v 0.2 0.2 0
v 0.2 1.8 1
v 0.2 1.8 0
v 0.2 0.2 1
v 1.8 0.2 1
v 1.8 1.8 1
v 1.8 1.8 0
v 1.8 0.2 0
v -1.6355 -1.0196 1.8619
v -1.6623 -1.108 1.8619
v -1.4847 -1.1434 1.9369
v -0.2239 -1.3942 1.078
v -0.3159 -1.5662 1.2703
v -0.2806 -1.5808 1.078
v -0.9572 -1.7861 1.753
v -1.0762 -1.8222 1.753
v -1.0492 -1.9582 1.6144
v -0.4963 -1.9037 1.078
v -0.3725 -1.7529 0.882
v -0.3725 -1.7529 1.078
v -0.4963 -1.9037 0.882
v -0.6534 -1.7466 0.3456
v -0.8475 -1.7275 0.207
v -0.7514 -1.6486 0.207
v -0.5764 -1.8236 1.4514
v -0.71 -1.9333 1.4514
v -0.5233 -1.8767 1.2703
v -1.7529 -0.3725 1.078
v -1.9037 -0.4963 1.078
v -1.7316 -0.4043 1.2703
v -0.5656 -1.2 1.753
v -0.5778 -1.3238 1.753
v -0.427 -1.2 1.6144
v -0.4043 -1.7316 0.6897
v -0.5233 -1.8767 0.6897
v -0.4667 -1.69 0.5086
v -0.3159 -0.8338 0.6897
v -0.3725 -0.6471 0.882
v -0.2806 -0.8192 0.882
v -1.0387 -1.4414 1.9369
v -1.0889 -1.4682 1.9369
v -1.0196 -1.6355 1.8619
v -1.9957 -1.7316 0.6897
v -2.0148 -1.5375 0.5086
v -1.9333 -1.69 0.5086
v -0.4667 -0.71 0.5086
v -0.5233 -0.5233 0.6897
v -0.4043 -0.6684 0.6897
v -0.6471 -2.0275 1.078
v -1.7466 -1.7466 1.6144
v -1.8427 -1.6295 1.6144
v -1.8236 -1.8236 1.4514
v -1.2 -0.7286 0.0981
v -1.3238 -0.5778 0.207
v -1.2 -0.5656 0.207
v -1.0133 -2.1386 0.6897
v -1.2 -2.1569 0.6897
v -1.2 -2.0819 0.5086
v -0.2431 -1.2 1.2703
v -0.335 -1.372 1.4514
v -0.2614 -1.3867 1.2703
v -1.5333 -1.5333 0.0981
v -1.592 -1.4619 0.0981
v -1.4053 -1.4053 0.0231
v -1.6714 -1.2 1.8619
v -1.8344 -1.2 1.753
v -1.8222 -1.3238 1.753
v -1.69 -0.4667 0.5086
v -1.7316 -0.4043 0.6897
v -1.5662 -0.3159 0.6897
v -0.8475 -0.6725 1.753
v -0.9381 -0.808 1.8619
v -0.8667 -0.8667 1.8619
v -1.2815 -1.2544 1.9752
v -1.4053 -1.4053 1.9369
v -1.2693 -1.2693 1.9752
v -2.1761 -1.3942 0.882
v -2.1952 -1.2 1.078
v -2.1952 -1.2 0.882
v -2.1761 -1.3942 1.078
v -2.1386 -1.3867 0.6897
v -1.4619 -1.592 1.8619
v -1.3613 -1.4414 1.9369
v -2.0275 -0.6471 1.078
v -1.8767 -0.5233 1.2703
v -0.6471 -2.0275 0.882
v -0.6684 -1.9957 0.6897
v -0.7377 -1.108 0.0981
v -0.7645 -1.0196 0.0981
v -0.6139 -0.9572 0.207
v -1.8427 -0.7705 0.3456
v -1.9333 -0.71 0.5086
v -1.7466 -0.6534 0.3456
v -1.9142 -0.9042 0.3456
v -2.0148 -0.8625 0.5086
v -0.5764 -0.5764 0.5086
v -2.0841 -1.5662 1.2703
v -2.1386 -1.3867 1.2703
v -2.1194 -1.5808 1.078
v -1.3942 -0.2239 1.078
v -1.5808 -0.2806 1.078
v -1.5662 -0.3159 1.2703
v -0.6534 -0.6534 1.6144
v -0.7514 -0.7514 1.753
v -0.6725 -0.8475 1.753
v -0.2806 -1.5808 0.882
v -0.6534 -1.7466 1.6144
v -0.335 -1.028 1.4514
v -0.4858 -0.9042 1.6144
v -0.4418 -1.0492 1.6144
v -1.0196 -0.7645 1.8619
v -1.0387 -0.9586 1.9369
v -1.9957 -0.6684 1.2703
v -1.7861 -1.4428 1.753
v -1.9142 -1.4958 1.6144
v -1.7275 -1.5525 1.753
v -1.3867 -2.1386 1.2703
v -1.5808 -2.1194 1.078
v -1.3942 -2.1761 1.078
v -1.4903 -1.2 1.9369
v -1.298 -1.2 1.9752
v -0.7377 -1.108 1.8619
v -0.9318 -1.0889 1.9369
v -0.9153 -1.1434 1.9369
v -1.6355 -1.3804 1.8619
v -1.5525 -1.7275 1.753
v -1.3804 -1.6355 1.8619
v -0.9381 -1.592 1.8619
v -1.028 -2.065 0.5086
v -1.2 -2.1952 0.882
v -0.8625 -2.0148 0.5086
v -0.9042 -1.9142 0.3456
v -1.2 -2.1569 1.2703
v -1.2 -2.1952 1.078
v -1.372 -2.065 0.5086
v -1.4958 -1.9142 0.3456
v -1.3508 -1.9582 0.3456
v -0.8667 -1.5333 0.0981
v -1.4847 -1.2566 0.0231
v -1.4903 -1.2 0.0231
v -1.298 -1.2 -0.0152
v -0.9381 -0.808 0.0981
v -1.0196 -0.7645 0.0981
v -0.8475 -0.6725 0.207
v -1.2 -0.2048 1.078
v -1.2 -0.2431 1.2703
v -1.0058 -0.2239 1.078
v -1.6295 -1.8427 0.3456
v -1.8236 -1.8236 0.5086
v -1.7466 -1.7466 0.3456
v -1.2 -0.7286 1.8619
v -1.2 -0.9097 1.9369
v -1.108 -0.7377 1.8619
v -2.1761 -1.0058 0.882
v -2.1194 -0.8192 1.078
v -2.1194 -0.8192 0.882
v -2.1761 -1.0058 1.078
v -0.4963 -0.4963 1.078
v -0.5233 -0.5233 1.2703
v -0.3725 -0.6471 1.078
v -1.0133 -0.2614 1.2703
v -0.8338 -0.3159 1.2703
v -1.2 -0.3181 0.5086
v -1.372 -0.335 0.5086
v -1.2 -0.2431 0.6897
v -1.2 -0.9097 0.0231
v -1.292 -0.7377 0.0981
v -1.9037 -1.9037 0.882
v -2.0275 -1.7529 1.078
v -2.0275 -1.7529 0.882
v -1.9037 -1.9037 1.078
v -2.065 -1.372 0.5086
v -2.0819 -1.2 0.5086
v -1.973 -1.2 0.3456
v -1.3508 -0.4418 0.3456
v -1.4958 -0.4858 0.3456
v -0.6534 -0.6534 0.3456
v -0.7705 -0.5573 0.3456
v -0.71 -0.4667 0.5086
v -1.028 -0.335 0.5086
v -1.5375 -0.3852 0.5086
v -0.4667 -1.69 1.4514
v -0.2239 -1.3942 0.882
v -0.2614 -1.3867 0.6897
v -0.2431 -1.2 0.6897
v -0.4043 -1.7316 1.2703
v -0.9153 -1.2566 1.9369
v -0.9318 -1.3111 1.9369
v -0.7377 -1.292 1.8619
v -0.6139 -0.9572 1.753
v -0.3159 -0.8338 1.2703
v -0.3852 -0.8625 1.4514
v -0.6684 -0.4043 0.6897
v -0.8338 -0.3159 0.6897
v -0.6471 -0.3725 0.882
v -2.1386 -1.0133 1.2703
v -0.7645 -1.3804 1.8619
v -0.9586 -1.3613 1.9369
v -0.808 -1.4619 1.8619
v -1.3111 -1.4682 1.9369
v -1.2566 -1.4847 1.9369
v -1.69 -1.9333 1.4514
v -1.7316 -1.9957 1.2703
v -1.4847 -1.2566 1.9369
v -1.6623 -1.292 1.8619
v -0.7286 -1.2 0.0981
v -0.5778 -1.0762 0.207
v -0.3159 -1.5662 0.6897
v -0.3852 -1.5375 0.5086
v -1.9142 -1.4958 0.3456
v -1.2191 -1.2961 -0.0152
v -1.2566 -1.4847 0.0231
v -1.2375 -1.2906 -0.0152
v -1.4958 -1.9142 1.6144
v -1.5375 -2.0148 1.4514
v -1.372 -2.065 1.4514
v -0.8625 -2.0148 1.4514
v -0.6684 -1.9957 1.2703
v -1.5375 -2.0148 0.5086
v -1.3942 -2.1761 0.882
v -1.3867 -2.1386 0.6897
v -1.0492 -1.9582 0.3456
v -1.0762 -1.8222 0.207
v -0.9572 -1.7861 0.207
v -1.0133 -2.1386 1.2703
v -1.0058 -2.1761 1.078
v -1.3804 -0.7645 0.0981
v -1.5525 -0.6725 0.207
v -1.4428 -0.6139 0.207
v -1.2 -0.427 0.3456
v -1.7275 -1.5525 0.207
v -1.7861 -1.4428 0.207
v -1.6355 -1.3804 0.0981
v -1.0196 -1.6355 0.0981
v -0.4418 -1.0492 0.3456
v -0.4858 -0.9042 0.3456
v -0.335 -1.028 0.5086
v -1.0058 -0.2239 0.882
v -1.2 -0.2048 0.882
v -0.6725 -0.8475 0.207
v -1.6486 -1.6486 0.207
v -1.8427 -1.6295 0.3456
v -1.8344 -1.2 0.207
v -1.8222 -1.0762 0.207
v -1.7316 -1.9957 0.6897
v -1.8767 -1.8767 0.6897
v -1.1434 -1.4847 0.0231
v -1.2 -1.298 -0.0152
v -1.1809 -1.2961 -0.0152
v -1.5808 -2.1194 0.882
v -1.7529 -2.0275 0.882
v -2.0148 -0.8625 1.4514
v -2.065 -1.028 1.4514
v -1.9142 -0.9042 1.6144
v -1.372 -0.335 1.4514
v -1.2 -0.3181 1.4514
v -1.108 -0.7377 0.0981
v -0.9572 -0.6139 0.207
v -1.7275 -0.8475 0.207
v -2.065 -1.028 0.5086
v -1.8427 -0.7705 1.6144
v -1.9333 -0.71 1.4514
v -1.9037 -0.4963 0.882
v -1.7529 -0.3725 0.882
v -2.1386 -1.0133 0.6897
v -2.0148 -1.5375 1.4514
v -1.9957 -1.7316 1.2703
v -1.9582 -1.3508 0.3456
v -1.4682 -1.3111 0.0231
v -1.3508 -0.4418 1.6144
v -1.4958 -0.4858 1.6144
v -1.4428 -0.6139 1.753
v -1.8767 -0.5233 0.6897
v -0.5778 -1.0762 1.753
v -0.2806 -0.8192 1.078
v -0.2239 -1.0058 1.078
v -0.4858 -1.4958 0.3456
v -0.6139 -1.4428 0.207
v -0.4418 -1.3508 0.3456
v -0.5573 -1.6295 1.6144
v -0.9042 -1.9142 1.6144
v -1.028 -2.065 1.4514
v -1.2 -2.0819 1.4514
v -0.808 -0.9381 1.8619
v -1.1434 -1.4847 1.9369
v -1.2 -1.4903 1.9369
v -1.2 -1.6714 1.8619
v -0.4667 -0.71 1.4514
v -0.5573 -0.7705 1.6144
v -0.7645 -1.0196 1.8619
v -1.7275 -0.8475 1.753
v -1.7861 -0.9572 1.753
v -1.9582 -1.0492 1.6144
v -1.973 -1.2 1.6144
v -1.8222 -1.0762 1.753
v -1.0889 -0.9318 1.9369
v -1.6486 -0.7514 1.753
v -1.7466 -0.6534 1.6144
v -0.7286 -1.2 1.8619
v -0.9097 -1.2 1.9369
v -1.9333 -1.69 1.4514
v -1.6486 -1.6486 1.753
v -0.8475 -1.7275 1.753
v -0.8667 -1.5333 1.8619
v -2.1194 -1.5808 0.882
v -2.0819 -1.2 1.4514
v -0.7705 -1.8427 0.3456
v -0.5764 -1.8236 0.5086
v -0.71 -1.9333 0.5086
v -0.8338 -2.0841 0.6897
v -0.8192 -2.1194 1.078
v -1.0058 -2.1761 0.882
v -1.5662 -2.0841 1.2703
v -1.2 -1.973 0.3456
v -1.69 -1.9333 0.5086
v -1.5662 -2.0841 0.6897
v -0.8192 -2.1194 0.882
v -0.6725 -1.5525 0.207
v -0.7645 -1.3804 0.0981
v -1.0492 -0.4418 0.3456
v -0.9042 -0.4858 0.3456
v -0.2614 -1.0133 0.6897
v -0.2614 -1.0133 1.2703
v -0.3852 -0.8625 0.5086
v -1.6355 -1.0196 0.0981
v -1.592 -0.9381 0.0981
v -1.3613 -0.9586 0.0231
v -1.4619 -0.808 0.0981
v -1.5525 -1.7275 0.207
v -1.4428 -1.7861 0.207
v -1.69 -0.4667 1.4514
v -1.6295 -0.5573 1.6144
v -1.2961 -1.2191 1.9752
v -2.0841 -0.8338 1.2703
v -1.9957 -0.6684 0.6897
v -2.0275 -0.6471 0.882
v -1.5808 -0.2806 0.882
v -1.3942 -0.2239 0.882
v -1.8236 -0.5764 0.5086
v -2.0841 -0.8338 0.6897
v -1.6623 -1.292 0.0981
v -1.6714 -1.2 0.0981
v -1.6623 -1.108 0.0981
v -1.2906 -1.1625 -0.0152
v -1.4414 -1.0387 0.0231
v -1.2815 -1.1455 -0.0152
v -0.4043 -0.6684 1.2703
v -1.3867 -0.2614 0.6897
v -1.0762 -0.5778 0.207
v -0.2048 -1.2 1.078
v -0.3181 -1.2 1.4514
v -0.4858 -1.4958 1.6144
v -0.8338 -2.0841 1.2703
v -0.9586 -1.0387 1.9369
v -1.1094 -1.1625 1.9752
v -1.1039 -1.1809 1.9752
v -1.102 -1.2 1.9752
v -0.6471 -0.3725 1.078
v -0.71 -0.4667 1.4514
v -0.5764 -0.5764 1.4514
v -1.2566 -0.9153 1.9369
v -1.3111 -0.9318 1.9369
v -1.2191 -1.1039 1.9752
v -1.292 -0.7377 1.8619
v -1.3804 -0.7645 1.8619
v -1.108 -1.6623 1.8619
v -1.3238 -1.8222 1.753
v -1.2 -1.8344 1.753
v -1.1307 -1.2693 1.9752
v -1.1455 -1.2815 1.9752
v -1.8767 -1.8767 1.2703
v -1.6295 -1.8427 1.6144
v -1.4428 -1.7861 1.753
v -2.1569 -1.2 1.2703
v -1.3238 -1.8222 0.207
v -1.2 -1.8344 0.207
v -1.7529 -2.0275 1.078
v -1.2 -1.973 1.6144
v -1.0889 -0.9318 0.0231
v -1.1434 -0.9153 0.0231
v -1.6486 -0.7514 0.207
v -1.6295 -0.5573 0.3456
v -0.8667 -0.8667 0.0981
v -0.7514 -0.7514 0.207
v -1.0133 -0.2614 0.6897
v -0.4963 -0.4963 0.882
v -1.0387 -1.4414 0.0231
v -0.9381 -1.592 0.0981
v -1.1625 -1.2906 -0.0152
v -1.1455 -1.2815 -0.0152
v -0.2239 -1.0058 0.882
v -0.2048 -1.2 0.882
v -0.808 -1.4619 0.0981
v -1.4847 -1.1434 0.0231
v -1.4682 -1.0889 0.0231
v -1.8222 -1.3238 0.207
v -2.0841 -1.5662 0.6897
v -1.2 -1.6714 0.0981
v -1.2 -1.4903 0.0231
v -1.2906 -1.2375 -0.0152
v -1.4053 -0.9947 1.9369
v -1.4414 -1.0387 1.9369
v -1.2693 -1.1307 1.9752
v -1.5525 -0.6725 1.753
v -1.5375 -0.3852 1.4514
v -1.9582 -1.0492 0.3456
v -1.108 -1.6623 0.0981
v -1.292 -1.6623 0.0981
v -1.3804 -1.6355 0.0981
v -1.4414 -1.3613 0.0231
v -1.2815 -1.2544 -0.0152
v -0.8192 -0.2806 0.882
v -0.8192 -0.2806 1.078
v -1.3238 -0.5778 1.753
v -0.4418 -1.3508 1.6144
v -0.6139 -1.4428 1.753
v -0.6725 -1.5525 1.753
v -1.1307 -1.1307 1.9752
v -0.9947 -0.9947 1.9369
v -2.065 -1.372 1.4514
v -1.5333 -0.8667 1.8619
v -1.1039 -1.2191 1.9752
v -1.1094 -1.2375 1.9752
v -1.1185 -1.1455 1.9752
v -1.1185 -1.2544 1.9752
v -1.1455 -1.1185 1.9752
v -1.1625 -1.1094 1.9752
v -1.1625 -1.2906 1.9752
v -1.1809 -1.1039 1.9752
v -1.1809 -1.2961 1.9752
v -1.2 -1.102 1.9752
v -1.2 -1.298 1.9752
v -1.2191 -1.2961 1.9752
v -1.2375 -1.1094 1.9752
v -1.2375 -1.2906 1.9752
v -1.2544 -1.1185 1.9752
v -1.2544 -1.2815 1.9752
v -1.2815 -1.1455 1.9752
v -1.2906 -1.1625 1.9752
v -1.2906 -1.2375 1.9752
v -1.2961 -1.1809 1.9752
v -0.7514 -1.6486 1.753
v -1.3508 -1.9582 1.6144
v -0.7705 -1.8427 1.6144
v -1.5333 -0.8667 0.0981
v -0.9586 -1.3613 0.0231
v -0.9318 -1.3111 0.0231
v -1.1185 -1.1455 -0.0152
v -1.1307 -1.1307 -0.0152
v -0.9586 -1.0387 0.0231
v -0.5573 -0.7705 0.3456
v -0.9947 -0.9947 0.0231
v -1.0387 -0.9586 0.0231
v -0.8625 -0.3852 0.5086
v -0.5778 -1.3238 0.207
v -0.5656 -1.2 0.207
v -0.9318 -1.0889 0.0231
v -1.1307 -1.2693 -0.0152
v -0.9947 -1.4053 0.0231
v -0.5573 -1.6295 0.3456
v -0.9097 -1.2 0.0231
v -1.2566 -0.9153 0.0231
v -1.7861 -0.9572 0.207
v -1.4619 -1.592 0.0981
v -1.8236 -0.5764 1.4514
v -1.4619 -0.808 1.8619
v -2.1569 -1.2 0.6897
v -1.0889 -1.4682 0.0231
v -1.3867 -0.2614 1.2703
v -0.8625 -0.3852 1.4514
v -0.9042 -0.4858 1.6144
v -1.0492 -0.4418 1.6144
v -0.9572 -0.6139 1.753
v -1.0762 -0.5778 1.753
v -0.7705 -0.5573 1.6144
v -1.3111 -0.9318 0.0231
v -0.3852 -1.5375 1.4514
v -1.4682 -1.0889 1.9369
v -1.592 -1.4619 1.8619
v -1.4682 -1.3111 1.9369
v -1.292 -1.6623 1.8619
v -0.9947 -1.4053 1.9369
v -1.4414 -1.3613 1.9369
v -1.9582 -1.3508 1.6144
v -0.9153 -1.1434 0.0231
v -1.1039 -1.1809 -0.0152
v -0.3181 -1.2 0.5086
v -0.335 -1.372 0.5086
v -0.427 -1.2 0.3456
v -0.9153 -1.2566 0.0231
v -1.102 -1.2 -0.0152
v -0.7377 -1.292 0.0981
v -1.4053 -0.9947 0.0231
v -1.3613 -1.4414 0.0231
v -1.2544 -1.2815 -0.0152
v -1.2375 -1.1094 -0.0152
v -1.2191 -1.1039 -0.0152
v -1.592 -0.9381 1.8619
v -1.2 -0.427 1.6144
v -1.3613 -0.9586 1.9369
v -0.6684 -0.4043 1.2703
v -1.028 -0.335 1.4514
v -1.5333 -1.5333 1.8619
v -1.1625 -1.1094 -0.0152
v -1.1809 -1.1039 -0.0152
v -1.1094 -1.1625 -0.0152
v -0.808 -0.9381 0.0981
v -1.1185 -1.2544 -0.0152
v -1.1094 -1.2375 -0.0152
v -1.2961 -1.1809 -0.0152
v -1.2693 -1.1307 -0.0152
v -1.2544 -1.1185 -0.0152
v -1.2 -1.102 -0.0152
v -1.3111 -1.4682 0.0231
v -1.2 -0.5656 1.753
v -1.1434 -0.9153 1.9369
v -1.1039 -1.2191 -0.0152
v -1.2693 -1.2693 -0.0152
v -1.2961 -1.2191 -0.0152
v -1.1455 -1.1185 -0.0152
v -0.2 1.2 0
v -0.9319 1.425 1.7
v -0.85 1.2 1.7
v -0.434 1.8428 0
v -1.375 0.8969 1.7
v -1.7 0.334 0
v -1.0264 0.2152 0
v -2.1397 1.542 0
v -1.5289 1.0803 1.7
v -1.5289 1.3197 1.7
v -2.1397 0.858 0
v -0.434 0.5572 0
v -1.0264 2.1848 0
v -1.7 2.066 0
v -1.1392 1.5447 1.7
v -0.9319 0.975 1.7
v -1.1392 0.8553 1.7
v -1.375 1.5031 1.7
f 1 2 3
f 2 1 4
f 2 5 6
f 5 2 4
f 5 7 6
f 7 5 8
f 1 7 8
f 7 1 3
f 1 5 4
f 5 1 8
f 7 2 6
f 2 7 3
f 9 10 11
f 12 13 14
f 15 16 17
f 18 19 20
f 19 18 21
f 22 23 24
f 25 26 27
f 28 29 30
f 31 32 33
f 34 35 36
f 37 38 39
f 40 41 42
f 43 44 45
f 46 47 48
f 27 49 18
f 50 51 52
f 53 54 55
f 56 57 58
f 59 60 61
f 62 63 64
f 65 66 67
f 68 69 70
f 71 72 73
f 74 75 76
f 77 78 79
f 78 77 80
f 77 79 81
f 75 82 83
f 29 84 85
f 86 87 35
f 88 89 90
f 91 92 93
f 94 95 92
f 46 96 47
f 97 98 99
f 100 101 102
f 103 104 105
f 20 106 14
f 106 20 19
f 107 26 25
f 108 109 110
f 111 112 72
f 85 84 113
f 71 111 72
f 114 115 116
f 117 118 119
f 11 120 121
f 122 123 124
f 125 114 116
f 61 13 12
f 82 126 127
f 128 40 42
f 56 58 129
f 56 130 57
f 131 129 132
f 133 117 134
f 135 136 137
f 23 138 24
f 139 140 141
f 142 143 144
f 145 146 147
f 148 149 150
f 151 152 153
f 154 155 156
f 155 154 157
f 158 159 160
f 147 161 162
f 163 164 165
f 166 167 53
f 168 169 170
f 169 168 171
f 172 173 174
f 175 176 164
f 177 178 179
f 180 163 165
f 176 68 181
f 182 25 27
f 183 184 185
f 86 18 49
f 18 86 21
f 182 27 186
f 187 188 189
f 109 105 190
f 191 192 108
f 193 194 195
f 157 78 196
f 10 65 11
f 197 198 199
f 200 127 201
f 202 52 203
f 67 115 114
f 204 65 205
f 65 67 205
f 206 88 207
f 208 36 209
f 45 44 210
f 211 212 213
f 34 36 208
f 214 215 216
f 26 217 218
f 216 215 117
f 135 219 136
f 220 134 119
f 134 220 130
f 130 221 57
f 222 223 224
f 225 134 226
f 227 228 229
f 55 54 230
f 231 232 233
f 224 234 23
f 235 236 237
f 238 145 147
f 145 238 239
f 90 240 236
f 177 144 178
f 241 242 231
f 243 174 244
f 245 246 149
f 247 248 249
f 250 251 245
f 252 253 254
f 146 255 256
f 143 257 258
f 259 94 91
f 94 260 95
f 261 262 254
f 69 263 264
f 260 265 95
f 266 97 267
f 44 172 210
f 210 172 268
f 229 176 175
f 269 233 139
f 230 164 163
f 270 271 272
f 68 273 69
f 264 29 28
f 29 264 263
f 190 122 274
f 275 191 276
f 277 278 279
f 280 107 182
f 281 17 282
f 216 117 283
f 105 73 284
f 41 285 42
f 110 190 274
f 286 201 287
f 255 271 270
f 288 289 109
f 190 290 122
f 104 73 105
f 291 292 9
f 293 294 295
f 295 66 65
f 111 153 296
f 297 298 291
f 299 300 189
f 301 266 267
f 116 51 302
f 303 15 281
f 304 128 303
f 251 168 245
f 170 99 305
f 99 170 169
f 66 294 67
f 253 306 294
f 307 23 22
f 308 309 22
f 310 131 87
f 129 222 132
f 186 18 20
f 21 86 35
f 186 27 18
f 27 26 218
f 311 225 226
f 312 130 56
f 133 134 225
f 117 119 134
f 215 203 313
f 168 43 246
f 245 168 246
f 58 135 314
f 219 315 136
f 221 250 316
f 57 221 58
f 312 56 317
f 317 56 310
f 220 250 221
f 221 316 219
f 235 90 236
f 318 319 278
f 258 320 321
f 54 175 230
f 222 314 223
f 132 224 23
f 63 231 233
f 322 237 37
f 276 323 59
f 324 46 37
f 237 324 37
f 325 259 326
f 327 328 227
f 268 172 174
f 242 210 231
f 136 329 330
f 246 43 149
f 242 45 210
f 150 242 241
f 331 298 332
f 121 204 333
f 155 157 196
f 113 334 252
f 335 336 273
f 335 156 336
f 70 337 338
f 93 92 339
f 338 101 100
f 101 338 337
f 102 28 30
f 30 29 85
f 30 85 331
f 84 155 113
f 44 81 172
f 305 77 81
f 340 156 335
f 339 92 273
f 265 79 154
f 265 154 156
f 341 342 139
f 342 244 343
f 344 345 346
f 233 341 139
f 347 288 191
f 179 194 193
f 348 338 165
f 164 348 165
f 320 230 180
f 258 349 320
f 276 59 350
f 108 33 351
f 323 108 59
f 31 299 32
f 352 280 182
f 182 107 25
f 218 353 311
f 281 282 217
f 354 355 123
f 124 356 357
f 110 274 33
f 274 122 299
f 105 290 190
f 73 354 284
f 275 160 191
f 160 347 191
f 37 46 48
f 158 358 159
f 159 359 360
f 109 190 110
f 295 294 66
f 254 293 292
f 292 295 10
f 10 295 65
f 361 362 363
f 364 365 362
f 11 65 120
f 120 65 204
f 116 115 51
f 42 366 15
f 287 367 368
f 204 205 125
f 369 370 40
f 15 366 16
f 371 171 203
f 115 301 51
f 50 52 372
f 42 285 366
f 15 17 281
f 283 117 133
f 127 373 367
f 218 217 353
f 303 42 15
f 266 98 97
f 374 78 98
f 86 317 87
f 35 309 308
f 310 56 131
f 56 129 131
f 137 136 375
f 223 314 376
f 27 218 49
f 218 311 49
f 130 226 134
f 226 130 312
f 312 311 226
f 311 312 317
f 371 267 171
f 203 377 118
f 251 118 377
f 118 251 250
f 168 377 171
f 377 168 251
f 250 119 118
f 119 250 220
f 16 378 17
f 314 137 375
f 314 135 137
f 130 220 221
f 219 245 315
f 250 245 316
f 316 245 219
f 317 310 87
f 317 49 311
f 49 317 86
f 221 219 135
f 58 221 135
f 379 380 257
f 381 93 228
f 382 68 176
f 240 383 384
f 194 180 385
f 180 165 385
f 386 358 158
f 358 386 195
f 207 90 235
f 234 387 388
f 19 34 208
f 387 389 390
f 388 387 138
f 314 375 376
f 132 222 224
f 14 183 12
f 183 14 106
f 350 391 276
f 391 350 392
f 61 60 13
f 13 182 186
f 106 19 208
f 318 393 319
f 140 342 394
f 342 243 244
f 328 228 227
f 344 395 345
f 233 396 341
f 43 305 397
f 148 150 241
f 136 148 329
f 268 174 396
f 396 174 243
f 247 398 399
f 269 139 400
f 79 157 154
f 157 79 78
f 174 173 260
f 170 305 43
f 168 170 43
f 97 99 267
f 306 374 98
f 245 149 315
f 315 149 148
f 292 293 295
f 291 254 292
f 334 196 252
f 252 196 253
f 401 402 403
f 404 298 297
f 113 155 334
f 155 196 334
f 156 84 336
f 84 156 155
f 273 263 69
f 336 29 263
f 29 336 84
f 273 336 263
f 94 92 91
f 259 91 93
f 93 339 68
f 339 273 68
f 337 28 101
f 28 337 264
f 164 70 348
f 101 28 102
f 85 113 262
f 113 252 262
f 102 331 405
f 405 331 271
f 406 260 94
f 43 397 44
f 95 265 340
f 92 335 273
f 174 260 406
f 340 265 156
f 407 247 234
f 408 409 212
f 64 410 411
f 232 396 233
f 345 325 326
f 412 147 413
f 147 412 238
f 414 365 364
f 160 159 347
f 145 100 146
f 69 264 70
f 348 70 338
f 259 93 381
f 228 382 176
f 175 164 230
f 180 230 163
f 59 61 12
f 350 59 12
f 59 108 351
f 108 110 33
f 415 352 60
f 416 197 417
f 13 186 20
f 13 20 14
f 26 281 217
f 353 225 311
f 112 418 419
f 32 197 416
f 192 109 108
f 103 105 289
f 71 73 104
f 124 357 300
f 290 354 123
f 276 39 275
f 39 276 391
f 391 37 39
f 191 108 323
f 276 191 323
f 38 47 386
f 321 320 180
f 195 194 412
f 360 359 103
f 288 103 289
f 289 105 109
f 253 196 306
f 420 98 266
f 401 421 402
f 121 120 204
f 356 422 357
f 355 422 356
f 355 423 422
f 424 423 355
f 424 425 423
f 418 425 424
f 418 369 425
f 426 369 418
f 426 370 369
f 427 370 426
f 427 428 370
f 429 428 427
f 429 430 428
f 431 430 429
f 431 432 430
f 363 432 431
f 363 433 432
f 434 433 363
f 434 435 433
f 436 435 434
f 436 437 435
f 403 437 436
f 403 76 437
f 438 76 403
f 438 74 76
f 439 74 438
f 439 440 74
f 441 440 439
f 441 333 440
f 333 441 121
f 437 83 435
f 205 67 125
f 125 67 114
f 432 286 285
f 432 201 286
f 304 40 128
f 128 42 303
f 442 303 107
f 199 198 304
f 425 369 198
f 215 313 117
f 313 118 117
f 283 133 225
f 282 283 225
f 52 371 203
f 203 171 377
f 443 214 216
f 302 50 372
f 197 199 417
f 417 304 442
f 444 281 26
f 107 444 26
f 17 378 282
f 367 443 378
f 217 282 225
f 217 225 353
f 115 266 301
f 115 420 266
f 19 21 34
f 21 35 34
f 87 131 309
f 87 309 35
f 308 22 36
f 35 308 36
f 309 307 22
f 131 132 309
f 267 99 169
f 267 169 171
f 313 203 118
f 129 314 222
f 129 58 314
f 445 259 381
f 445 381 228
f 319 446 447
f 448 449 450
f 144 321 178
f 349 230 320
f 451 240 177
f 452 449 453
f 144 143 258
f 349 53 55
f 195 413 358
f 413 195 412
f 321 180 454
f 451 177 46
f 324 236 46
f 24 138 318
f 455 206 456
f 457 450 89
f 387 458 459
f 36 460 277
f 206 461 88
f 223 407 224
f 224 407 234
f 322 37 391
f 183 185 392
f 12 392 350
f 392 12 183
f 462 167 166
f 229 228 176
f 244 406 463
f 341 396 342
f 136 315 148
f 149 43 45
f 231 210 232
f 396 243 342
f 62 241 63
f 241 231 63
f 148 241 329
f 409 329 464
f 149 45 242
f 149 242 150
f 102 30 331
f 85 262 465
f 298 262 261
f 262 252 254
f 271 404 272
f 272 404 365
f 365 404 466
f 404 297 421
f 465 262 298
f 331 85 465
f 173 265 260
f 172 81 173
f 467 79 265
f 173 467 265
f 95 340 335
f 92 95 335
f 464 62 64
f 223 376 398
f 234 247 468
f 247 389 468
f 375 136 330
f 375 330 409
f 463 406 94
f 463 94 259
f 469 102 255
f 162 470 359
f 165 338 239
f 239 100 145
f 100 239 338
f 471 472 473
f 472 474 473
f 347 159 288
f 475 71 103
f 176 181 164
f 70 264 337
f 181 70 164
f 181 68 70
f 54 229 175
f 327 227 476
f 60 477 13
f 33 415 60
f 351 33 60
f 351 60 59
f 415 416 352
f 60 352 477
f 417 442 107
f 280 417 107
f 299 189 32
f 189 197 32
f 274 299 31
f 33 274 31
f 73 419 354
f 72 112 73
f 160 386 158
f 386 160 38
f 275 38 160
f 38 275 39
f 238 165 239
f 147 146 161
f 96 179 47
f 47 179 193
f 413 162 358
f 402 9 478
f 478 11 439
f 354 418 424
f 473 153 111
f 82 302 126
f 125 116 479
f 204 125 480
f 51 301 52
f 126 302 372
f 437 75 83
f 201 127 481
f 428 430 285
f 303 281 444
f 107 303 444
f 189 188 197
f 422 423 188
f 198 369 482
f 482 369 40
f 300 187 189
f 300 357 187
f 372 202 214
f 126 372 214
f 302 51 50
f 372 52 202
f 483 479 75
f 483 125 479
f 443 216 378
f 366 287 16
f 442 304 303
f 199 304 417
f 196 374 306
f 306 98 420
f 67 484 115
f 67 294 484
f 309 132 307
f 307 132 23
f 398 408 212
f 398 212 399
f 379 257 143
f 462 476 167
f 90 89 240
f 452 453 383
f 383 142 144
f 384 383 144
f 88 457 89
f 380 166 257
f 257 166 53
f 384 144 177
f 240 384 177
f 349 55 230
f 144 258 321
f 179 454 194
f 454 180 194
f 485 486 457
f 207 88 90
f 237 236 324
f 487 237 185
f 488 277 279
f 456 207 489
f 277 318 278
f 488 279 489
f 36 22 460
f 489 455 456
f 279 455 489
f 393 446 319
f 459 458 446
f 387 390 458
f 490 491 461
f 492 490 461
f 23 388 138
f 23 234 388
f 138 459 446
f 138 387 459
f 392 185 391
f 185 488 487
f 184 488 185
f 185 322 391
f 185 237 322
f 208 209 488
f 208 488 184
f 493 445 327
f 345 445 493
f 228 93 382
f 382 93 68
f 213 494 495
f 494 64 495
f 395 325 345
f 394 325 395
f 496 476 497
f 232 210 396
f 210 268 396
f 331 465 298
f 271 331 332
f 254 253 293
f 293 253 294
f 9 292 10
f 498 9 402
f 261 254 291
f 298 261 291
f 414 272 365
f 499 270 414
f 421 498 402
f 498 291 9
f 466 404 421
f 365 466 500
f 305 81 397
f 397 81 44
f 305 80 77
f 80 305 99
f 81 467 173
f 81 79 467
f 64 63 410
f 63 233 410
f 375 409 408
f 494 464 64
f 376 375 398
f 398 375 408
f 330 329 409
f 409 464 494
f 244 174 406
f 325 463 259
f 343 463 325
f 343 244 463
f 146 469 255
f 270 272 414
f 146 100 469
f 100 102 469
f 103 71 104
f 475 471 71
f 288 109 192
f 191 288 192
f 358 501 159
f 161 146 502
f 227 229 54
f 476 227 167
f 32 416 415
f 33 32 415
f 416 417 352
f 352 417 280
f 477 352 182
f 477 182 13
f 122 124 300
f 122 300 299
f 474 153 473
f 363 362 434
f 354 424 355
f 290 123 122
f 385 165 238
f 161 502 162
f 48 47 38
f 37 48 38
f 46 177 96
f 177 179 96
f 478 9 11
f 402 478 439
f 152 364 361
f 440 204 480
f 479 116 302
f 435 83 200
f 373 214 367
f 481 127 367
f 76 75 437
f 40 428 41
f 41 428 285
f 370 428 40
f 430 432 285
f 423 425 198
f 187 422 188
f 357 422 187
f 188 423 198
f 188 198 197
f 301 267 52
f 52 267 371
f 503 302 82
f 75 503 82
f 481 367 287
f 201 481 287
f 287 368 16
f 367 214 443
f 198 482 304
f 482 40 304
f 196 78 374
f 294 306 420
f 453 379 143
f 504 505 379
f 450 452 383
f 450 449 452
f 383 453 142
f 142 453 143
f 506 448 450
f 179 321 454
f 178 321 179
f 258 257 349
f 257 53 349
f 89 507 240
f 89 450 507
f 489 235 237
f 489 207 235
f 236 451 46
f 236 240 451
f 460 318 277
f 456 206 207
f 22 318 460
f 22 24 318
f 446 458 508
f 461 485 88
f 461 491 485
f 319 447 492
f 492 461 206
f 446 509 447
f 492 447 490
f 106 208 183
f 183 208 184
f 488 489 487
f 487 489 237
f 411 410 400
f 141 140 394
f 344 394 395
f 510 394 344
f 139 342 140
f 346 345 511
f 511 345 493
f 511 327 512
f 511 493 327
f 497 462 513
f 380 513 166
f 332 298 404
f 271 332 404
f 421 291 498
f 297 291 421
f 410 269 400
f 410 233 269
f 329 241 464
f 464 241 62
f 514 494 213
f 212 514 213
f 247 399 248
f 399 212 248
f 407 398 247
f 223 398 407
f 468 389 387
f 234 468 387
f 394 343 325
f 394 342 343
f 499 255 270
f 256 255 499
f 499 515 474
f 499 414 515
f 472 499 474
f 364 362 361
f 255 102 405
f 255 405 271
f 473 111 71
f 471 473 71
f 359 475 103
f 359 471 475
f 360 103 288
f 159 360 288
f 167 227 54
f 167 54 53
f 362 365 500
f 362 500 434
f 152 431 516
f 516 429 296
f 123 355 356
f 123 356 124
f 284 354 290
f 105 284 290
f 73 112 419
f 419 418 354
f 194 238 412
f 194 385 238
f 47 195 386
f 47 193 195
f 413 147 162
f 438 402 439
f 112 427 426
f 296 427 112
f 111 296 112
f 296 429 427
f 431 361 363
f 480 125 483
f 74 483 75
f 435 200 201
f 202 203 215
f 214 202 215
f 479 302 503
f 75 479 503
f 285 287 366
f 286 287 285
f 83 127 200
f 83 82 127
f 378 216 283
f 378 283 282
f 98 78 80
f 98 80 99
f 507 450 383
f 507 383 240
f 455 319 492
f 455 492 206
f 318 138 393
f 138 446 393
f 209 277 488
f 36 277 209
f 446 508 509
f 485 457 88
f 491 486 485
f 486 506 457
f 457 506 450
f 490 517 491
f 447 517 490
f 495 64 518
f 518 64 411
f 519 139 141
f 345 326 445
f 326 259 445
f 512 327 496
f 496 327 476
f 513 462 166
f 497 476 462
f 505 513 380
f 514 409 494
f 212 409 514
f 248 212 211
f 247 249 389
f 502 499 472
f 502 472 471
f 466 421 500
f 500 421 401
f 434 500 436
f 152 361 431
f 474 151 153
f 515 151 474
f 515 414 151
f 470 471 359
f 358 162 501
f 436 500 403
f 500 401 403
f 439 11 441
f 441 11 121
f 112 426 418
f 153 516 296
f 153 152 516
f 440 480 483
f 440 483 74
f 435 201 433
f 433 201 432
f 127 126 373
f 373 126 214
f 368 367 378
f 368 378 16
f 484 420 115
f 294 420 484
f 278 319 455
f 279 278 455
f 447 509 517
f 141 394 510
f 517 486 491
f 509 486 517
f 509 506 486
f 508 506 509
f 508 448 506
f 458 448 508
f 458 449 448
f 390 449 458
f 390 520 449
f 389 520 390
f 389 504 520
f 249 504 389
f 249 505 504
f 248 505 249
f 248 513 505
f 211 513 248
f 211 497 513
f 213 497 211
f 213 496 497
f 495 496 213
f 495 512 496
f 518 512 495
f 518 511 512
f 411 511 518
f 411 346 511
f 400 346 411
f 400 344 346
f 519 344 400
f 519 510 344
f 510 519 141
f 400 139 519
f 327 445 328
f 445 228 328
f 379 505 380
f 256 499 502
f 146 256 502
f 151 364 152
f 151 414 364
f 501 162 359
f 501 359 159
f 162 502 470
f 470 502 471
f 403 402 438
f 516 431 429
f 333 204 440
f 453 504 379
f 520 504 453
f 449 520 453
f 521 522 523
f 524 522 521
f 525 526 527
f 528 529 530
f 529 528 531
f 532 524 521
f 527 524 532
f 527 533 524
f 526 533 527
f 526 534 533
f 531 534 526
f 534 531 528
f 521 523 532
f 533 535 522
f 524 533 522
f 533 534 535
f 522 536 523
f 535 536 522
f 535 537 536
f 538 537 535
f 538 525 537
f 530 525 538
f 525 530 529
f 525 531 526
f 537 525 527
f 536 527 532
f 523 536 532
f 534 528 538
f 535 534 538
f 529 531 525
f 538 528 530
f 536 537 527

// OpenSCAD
translate([1, 1, 0.5]) 
  cube([1.6, 1.6, 1], center = true);

translate([-1.2, -1.2, 0.98]) 
  sphere(1, $fn=32);
  
translate([-1.2, 1.2, 0]) 
  cylinder(h=1.7, d1=2, d2=0.7, $fn=9);
